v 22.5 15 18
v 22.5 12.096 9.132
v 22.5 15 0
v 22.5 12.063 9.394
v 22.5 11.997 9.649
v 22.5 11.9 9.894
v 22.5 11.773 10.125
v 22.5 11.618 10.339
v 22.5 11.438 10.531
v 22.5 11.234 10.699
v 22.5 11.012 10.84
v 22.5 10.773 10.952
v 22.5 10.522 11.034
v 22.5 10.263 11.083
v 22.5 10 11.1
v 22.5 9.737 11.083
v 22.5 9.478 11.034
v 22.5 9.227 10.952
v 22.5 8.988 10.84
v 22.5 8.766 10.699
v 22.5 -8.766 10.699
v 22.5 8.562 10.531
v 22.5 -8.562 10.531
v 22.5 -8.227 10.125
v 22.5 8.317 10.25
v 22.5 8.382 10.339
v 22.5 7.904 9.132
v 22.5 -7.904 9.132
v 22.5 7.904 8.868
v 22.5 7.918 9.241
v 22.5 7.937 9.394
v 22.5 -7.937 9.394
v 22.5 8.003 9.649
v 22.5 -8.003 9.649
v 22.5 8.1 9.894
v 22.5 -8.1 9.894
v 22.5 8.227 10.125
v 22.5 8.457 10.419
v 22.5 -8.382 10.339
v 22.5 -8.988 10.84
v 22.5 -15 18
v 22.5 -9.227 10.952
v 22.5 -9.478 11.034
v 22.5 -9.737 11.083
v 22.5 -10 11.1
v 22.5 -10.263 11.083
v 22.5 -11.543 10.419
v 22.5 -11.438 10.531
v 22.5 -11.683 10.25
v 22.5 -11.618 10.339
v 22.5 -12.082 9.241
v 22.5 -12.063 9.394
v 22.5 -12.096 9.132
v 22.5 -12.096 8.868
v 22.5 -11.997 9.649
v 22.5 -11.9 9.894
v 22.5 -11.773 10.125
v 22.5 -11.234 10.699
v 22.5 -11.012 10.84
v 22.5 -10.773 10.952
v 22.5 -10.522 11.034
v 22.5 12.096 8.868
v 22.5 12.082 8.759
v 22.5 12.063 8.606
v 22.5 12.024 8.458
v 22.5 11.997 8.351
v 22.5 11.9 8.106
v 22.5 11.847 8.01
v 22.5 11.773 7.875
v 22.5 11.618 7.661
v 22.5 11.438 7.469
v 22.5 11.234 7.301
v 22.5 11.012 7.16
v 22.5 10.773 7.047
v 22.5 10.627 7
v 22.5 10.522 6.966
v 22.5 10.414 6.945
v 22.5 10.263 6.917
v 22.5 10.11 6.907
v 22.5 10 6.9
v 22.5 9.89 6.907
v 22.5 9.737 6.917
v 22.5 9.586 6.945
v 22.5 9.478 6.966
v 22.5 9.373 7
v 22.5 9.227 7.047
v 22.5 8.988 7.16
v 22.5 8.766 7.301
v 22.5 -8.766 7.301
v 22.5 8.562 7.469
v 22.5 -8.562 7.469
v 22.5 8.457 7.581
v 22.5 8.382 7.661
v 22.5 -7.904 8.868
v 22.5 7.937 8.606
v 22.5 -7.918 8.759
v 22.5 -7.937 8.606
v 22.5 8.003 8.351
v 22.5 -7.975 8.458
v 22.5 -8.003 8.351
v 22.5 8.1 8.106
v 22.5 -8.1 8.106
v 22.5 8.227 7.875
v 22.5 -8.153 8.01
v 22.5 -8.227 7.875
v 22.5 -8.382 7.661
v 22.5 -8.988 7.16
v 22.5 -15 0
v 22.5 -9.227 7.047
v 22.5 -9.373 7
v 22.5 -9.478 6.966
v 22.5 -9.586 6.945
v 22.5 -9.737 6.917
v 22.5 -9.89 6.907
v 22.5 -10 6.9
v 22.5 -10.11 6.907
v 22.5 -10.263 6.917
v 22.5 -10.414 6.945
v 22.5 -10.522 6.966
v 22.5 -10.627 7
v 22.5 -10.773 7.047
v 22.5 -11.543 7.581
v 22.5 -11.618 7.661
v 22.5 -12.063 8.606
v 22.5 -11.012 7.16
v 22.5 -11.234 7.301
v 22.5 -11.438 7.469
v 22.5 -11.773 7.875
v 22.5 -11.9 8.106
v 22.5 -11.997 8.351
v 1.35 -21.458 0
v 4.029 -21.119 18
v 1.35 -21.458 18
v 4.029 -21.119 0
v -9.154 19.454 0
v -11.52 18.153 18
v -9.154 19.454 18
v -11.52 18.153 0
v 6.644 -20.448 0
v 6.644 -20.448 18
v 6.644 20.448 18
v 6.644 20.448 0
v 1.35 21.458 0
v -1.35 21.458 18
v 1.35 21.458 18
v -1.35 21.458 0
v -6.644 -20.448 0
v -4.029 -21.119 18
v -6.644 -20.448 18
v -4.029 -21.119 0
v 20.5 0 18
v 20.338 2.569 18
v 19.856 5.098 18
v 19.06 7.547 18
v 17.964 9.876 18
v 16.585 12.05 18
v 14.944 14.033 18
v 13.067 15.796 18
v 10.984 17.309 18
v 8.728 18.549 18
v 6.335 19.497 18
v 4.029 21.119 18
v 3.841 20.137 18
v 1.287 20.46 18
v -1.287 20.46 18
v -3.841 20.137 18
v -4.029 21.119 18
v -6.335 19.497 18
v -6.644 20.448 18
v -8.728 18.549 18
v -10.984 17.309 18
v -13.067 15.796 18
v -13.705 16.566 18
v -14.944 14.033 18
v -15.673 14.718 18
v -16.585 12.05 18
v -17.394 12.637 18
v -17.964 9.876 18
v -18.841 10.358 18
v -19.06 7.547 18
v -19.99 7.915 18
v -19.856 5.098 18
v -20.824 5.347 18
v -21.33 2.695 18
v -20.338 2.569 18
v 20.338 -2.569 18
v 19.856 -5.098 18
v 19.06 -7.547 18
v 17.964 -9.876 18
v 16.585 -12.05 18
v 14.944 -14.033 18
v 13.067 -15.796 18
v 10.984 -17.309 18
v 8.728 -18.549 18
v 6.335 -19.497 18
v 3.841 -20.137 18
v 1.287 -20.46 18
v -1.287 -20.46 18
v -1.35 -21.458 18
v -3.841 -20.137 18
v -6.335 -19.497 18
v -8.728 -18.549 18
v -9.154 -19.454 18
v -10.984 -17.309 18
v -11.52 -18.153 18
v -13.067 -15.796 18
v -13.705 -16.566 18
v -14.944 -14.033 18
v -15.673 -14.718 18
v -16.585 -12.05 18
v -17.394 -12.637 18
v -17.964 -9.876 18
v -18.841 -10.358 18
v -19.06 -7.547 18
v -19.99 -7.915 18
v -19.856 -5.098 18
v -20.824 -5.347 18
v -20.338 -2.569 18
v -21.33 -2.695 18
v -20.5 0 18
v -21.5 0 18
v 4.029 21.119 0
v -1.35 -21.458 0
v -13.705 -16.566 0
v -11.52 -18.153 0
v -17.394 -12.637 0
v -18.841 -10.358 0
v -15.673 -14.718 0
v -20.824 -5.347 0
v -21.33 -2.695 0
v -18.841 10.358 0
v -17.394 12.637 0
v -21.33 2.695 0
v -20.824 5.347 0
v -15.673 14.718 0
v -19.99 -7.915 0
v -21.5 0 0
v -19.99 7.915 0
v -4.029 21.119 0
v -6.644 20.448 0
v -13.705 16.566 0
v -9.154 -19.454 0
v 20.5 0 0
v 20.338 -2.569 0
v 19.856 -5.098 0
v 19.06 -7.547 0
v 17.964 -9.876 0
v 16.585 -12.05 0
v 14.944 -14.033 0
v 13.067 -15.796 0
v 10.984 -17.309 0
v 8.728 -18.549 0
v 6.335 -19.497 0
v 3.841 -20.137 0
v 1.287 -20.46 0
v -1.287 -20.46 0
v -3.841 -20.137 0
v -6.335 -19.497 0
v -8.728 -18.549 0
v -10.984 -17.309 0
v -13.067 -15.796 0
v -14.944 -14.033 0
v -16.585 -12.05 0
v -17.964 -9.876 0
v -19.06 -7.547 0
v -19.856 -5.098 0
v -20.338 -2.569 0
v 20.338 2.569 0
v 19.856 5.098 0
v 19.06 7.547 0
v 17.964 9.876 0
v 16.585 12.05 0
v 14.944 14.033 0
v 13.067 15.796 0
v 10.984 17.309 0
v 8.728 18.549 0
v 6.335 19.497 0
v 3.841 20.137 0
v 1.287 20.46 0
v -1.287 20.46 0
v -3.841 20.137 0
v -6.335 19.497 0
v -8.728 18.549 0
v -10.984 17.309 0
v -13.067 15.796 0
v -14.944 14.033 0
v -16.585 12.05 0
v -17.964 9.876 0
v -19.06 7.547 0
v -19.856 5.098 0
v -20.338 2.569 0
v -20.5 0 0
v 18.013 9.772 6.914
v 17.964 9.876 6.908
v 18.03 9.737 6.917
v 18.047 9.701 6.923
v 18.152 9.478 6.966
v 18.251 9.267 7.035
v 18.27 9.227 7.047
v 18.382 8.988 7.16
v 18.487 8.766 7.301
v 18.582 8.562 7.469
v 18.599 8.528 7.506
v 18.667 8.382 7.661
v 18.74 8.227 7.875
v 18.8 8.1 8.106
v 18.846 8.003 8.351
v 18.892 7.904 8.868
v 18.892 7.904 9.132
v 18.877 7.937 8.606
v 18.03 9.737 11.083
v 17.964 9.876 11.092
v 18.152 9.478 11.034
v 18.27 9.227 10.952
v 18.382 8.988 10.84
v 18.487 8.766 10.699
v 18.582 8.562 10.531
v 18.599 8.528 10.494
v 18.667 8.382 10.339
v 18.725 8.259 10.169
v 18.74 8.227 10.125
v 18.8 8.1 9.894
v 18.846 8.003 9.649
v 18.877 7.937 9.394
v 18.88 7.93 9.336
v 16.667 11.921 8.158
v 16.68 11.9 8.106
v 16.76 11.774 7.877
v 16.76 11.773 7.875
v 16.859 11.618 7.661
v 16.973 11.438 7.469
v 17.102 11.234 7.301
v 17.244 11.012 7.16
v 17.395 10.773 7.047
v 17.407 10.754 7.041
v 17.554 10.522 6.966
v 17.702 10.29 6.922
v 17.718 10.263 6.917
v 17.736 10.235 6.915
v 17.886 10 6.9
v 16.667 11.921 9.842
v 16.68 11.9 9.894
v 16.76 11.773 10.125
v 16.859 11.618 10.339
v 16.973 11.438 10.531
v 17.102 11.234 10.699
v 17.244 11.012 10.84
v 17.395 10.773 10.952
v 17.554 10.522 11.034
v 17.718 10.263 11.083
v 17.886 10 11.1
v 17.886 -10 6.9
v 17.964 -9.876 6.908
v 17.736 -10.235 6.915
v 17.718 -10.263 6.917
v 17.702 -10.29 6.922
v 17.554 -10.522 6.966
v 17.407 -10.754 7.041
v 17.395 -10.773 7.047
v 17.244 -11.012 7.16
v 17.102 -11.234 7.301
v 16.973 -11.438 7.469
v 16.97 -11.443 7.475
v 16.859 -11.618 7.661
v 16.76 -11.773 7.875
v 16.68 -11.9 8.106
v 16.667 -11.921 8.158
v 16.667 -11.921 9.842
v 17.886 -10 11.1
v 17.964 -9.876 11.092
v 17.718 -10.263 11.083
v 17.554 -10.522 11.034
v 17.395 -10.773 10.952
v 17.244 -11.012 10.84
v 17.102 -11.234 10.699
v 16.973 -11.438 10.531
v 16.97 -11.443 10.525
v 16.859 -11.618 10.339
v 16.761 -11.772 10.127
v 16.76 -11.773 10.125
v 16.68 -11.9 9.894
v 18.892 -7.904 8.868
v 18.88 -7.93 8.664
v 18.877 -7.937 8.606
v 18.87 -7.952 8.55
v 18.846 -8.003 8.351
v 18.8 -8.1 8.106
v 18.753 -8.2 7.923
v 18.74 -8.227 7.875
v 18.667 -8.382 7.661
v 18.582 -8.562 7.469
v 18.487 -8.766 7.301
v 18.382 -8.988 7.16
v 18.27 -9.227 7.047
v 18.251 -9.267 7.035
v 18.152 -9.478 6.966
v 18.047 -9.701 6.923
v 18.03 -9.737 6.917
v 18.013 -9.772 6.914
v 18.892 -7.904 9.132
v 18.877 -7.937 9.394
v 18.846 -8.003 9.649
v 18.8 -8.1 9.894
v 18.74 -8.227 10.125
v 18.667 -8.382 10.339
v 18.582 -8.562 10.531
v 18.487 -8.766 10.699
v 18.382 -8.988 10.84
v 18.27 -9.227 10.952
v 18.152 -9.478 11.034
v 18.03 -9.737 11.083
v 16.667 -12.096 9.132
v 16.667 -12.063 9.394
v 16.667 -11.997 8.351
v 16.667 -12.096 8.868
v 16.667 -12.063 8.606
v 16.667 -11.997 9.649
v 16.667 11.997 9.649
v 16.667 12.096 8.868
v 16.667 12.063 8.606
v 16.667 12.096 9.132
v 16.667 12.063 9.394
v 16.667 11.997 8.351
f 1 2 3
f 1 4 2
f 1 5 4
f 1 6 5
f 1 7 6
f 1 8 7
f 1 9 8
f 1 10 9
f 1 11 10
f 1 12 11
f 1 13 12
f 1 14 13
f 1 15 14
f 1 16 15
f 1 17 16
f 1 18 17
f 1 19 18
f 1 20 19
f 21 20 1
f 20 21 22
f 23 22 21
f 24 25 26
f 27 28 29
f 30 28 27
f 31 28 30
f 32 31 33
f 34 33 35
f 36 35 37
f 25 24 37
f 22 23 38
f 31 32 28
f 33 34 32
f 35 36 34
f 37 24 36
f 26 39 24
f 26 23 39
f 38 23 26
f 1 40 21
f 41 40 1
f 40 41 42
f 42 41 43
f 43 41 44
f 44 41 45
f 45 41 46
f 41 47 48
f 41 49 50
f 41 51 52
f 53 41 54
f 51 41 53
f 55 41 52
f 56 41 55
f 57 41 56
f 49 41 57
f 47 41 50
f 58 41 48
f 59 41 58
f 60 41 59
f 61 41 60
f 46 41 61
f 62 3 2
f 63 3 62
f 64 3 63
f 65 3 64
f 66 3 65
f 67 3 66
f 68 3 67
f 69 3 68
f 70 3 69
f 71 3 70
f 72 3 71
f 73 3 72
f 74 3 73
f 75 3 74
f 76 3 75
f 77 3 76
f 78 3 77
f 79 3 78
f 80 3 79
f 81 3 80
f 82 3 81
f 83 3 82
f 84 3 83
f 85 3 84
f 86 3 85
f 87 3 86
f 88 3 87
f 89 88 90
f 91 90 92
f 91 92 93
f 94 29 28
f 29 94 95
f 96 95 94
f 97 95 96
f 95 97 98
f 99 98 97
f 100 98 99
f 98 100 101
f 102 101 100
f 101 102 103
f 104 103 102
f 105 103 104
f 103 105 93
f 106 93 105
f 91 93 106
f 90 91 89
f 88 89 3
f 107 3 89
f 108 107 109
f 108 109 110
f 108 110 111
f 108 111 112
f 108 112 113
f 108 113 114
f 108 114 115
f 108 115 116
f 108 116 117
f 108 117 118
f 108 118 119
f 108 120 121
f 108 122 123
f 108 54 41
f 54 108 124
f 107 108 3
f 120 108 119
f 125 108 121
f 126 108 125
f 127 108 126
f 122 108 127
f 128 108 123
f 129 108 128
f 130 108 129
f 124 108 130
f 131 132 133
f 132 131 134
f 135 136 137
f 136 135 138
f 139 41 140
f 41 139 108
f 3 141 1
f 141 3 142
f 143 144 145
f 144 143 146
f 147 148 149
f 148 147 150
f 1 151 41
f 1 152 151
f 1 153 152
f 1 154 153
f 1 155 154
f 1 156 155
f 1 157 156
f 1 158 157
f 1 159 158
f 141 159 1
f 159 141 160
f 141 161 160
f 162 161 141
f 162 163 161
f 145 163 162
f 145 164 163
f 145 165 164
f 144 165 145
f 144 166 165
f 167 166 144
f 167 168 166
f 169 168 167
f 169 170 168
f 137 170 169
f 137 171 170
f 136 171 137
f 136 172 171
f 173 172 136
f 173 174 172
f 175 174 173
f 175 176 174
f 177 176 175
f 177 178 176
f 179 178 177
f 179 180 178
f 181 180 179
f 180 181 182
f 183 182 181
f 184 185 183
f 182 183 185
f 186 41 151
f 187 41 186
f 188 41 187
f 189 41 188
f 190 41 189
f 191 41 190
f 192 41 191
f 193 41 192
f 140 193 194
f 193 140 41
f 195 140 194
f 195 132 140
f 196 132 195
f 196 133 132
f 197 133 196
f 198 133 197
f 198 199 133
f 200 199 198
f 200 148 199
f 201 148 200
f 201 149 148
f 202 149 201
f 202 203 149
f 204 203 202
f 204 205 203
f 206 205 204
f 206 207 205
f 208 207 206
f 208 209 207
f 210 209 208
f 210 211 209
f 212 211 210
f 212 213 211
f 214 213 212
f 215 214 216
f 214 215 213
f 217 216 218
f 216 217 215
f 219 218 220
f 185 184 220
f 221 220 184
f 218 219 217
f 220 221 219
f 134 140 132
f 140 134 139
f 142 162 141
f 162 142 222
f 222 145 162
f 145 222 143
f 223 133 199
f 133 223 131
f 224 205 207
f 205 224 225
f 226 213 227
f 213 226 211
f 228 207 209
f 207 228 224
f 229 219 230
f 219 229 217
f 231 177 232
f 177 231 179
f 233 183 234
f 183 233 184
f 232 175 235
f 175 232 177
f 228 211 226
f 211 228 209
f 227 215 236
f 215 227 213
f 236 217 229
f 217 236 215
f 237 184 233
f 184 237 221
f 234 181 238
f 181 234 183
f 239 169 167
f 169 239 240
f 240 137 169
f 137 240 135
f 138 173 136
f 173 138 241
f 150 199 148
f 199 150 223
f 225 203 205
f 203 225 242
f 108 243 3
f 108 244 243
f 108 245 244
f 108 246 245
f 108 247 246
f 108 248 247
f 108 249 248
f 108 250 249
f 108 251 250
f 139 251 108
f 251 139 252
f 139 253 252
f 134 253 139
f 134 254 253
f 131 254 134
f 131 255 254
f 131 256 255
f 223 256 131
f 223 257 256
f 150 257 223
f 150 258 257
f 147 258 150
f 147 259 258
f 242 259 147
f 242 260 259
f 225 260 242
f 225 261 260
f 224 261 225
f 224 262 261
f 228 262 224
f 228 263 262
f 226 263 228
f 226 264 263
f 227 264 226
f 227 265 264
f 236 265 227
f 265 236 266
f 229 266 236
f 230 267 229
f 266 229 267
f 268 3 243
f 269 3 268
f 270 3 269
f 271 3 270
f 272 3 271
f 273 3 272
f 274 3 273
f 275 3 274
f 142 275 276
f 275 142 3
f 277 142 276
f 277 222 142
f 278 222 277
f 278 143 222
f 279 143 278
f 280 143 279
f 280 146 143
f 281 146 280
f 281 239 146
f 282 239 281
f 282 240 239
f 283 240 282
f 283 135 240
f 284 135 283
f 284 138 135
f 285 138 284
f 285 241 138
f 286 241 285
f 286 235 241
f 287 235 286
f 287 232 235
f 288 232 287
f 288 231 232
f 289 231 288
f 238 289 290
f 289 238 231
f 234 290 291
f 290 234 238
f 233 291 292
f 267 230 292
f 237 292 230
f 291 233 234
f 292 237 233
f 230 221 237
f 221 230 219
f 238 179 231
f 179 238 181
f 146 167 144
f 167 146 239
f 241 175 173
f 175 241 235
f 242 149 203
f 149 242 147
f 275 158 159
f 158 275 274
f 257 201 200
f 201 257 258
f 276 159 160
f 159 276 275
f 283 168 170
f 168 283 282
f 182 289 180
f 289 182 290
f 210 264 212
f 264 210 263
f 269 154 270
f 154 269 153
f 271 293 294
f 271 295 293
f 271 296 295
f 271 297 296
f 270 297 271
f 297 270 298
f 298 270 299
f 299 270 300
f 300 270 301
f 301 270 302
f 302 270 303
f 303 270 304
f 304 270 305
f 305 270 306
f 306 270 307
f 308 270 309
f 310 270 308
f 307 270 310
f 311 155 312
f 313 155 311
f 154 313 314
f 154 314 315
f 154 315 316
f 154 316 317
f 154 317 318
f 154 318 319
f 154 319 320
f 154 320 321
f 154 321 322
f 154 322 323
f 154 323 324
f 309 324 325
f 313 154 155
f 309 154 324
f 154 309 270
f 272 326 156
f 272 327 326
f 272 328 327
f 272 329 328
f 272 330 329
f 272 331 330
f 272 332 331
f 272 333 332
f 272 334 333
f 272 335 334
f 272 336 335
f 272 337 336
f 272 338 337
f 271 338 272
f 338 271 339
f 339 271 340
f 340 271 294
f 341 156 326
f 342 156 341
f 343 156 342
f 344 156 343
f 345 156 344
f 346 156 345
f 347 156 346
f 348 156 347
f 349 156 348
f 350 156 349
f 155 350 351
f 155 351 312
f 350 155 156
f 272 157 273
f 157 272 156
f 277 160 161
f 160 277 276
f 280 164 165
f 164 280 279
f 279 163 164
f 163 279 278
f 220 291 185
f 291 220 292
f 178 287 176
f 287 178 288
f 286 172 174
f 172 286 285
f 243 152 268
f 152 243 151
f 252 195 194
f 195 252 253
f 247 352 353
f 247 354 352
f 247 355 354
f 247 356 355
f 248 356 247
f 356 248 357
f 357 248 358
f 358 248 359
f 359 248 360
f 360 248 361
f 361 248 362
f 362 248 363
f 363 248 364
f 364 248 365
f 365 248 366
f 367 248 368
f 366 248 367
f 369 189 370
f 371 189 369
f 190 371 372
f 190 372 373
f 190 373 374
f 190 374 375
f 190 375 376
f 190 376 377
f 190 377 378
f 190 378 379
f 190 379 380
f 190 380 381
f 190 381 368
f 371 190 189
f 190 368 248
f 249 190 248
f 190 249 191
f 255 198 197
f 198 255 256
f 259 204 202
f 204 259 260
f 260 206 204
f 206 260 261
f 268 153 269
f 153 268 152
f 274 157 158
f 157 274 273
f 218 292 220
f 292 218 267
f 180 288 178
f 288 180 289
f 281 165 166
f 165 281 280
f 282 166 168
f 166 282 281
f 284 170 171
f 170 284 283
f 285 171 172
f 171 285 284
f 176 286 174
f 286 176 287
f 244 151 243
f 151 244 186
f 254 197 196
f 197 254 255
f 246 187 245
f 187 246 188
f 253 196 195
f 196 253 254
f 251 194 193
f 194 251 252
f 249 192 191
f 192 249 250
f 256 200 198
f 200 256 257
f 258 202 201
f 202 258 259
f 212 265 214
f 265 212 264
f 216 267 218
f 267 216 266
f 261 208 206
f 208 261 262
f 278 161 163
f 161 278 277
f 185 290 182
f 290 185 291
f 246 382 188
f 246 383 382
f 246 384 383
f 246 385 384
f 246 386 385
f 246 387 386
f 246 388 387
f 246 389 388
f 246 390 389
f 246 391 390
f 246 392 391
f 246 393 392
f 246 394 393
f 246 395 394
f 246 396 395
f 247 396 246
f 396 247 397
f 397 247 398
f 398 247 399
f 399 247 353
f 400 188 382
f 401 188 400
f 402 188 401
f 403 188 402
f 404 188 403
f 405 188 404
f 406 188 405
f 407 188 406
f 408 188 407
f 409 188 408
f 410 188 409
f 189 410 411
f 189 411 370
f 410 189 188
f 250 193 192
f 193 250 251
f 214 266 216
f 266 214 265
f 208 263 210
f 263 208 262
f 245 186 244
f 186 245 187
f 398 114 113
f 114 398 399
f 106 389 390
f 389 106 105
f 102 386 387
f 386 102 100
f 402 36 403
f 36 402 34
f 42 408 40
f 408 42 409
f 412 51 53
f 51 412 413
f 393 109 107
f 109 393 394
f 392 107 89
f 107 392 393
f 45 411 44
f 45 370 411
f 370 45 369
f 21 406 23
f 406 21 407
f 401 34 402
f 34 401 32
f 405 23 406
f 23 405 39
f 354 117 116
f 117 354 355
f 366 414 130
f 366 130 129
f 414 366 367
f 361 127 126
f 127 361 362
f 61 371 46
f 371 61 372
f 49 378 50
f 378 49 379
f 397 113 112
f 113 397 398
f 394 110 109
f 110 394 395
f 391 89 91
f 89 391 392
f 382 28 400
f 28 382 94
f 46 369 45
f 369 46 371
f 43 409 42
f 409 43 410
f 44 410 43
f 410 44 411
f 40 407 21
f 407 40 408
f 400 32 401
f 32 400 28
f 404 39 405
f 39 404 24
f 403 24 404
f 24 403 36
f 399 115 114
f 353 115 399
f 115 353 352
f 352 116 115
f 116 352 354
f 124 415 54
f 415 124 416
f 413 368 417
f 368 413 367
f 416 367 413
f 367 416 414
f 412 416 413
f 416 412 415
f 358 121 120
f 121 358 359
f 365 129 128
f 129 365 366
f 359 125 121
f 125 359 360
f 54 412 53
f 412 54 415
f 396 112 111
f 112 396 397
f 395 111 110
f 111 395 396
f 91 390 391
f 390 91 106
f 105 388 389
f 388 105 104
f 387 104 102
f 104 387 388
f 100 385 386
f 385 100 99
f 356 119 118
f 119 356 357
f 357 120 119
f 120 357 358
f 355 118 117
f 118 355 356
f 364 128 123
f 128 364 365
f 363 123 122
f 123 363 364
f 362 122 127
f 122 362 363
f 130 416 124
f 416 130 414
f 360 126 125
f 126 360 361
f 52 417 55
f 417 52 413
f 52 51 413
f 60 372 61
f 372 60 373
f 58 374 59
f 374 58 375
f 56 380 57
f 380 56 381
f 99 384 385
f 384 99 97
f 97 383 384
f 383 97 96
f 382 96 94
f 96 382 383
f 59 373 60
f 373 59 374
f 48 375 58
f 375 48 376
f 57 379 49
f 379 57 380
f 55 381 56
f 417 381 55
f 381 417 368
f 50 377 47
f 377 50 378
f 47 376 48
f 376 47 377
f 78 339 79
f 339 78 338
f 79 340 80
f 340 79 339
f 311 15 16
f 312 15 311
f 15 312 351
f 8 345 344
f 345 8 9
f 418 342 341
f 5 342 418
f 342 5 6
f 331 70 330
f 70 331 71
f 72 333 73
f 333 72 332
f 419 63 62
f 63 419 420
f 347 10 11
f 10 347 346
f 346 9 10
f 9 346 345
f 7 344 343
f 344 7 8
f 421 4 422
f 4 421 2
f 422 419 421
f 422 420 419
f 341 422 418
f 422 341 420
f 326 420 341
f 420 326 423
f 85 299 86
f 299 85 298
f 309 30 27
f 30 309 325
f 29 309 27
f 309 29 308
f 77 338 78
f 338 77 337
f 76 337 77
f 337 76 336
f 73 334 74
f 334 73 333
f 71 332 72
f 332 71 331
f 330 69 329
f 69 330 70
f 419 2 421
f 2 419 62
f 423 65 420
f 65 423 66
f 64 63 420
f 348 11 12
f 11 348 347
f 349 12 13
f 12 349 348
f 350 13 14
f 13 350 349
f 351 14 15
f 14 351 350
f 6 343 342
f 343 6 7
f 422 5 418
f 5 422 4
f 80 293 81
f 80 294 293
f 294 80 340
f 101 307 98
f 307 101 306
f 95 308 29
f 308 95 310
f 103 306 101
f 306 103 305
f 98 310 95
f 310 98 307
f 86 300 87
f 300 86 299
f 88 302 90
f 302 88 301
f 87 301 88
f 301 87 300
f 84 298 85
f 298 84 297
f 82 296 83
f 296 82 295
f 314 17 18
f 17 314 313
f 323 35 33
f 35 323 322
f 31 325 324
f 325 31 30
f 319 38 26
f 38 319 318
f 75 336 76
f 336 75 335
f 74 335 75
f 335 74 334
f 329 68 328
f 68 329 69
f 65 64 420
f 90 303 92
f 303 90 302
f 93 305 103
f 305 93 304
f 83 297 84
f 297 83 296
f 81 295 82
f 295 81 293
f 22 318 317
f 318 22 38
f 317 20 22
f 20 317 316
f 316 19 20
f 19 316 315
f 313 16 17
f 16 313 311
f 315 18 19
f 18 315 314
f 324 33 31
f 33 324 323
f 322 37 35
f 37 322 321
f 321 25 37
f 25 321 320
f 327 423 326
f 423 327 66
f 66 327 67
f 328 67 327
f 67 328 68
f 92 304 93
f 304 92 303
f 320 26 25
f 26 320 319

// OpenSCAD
//include <plate.scad>;

module housing(width, height, port)
{
    difference()
    {
        hull()
        {
            cylinder(h = height, r = width * 0.43);

            translate([-width * 0.15, -width * 0.3, 0])
            {
                cube([width * 0.6, width * 0.6, height]);
            }
       }
       
       translate([0, 0, -0.01])
       {
            cylinder(h = height + 0.02, r = width * 0.41);
       }
       
       translate([width / 3, -width / 5, height /2])
       {
            rotate([0, 90, 0])
            {   
               cylinder(h = width / 5, r = port / 2);
            }
        }

        translate([width / 3, width / 5, height /2])
        {
            rotate([0, 90, 0])
            {   
               cylinder(h = width / 5, r = port / 2);
            }
        }

   }
}

housing(50, 18, 4.2);

$fn = 50;
